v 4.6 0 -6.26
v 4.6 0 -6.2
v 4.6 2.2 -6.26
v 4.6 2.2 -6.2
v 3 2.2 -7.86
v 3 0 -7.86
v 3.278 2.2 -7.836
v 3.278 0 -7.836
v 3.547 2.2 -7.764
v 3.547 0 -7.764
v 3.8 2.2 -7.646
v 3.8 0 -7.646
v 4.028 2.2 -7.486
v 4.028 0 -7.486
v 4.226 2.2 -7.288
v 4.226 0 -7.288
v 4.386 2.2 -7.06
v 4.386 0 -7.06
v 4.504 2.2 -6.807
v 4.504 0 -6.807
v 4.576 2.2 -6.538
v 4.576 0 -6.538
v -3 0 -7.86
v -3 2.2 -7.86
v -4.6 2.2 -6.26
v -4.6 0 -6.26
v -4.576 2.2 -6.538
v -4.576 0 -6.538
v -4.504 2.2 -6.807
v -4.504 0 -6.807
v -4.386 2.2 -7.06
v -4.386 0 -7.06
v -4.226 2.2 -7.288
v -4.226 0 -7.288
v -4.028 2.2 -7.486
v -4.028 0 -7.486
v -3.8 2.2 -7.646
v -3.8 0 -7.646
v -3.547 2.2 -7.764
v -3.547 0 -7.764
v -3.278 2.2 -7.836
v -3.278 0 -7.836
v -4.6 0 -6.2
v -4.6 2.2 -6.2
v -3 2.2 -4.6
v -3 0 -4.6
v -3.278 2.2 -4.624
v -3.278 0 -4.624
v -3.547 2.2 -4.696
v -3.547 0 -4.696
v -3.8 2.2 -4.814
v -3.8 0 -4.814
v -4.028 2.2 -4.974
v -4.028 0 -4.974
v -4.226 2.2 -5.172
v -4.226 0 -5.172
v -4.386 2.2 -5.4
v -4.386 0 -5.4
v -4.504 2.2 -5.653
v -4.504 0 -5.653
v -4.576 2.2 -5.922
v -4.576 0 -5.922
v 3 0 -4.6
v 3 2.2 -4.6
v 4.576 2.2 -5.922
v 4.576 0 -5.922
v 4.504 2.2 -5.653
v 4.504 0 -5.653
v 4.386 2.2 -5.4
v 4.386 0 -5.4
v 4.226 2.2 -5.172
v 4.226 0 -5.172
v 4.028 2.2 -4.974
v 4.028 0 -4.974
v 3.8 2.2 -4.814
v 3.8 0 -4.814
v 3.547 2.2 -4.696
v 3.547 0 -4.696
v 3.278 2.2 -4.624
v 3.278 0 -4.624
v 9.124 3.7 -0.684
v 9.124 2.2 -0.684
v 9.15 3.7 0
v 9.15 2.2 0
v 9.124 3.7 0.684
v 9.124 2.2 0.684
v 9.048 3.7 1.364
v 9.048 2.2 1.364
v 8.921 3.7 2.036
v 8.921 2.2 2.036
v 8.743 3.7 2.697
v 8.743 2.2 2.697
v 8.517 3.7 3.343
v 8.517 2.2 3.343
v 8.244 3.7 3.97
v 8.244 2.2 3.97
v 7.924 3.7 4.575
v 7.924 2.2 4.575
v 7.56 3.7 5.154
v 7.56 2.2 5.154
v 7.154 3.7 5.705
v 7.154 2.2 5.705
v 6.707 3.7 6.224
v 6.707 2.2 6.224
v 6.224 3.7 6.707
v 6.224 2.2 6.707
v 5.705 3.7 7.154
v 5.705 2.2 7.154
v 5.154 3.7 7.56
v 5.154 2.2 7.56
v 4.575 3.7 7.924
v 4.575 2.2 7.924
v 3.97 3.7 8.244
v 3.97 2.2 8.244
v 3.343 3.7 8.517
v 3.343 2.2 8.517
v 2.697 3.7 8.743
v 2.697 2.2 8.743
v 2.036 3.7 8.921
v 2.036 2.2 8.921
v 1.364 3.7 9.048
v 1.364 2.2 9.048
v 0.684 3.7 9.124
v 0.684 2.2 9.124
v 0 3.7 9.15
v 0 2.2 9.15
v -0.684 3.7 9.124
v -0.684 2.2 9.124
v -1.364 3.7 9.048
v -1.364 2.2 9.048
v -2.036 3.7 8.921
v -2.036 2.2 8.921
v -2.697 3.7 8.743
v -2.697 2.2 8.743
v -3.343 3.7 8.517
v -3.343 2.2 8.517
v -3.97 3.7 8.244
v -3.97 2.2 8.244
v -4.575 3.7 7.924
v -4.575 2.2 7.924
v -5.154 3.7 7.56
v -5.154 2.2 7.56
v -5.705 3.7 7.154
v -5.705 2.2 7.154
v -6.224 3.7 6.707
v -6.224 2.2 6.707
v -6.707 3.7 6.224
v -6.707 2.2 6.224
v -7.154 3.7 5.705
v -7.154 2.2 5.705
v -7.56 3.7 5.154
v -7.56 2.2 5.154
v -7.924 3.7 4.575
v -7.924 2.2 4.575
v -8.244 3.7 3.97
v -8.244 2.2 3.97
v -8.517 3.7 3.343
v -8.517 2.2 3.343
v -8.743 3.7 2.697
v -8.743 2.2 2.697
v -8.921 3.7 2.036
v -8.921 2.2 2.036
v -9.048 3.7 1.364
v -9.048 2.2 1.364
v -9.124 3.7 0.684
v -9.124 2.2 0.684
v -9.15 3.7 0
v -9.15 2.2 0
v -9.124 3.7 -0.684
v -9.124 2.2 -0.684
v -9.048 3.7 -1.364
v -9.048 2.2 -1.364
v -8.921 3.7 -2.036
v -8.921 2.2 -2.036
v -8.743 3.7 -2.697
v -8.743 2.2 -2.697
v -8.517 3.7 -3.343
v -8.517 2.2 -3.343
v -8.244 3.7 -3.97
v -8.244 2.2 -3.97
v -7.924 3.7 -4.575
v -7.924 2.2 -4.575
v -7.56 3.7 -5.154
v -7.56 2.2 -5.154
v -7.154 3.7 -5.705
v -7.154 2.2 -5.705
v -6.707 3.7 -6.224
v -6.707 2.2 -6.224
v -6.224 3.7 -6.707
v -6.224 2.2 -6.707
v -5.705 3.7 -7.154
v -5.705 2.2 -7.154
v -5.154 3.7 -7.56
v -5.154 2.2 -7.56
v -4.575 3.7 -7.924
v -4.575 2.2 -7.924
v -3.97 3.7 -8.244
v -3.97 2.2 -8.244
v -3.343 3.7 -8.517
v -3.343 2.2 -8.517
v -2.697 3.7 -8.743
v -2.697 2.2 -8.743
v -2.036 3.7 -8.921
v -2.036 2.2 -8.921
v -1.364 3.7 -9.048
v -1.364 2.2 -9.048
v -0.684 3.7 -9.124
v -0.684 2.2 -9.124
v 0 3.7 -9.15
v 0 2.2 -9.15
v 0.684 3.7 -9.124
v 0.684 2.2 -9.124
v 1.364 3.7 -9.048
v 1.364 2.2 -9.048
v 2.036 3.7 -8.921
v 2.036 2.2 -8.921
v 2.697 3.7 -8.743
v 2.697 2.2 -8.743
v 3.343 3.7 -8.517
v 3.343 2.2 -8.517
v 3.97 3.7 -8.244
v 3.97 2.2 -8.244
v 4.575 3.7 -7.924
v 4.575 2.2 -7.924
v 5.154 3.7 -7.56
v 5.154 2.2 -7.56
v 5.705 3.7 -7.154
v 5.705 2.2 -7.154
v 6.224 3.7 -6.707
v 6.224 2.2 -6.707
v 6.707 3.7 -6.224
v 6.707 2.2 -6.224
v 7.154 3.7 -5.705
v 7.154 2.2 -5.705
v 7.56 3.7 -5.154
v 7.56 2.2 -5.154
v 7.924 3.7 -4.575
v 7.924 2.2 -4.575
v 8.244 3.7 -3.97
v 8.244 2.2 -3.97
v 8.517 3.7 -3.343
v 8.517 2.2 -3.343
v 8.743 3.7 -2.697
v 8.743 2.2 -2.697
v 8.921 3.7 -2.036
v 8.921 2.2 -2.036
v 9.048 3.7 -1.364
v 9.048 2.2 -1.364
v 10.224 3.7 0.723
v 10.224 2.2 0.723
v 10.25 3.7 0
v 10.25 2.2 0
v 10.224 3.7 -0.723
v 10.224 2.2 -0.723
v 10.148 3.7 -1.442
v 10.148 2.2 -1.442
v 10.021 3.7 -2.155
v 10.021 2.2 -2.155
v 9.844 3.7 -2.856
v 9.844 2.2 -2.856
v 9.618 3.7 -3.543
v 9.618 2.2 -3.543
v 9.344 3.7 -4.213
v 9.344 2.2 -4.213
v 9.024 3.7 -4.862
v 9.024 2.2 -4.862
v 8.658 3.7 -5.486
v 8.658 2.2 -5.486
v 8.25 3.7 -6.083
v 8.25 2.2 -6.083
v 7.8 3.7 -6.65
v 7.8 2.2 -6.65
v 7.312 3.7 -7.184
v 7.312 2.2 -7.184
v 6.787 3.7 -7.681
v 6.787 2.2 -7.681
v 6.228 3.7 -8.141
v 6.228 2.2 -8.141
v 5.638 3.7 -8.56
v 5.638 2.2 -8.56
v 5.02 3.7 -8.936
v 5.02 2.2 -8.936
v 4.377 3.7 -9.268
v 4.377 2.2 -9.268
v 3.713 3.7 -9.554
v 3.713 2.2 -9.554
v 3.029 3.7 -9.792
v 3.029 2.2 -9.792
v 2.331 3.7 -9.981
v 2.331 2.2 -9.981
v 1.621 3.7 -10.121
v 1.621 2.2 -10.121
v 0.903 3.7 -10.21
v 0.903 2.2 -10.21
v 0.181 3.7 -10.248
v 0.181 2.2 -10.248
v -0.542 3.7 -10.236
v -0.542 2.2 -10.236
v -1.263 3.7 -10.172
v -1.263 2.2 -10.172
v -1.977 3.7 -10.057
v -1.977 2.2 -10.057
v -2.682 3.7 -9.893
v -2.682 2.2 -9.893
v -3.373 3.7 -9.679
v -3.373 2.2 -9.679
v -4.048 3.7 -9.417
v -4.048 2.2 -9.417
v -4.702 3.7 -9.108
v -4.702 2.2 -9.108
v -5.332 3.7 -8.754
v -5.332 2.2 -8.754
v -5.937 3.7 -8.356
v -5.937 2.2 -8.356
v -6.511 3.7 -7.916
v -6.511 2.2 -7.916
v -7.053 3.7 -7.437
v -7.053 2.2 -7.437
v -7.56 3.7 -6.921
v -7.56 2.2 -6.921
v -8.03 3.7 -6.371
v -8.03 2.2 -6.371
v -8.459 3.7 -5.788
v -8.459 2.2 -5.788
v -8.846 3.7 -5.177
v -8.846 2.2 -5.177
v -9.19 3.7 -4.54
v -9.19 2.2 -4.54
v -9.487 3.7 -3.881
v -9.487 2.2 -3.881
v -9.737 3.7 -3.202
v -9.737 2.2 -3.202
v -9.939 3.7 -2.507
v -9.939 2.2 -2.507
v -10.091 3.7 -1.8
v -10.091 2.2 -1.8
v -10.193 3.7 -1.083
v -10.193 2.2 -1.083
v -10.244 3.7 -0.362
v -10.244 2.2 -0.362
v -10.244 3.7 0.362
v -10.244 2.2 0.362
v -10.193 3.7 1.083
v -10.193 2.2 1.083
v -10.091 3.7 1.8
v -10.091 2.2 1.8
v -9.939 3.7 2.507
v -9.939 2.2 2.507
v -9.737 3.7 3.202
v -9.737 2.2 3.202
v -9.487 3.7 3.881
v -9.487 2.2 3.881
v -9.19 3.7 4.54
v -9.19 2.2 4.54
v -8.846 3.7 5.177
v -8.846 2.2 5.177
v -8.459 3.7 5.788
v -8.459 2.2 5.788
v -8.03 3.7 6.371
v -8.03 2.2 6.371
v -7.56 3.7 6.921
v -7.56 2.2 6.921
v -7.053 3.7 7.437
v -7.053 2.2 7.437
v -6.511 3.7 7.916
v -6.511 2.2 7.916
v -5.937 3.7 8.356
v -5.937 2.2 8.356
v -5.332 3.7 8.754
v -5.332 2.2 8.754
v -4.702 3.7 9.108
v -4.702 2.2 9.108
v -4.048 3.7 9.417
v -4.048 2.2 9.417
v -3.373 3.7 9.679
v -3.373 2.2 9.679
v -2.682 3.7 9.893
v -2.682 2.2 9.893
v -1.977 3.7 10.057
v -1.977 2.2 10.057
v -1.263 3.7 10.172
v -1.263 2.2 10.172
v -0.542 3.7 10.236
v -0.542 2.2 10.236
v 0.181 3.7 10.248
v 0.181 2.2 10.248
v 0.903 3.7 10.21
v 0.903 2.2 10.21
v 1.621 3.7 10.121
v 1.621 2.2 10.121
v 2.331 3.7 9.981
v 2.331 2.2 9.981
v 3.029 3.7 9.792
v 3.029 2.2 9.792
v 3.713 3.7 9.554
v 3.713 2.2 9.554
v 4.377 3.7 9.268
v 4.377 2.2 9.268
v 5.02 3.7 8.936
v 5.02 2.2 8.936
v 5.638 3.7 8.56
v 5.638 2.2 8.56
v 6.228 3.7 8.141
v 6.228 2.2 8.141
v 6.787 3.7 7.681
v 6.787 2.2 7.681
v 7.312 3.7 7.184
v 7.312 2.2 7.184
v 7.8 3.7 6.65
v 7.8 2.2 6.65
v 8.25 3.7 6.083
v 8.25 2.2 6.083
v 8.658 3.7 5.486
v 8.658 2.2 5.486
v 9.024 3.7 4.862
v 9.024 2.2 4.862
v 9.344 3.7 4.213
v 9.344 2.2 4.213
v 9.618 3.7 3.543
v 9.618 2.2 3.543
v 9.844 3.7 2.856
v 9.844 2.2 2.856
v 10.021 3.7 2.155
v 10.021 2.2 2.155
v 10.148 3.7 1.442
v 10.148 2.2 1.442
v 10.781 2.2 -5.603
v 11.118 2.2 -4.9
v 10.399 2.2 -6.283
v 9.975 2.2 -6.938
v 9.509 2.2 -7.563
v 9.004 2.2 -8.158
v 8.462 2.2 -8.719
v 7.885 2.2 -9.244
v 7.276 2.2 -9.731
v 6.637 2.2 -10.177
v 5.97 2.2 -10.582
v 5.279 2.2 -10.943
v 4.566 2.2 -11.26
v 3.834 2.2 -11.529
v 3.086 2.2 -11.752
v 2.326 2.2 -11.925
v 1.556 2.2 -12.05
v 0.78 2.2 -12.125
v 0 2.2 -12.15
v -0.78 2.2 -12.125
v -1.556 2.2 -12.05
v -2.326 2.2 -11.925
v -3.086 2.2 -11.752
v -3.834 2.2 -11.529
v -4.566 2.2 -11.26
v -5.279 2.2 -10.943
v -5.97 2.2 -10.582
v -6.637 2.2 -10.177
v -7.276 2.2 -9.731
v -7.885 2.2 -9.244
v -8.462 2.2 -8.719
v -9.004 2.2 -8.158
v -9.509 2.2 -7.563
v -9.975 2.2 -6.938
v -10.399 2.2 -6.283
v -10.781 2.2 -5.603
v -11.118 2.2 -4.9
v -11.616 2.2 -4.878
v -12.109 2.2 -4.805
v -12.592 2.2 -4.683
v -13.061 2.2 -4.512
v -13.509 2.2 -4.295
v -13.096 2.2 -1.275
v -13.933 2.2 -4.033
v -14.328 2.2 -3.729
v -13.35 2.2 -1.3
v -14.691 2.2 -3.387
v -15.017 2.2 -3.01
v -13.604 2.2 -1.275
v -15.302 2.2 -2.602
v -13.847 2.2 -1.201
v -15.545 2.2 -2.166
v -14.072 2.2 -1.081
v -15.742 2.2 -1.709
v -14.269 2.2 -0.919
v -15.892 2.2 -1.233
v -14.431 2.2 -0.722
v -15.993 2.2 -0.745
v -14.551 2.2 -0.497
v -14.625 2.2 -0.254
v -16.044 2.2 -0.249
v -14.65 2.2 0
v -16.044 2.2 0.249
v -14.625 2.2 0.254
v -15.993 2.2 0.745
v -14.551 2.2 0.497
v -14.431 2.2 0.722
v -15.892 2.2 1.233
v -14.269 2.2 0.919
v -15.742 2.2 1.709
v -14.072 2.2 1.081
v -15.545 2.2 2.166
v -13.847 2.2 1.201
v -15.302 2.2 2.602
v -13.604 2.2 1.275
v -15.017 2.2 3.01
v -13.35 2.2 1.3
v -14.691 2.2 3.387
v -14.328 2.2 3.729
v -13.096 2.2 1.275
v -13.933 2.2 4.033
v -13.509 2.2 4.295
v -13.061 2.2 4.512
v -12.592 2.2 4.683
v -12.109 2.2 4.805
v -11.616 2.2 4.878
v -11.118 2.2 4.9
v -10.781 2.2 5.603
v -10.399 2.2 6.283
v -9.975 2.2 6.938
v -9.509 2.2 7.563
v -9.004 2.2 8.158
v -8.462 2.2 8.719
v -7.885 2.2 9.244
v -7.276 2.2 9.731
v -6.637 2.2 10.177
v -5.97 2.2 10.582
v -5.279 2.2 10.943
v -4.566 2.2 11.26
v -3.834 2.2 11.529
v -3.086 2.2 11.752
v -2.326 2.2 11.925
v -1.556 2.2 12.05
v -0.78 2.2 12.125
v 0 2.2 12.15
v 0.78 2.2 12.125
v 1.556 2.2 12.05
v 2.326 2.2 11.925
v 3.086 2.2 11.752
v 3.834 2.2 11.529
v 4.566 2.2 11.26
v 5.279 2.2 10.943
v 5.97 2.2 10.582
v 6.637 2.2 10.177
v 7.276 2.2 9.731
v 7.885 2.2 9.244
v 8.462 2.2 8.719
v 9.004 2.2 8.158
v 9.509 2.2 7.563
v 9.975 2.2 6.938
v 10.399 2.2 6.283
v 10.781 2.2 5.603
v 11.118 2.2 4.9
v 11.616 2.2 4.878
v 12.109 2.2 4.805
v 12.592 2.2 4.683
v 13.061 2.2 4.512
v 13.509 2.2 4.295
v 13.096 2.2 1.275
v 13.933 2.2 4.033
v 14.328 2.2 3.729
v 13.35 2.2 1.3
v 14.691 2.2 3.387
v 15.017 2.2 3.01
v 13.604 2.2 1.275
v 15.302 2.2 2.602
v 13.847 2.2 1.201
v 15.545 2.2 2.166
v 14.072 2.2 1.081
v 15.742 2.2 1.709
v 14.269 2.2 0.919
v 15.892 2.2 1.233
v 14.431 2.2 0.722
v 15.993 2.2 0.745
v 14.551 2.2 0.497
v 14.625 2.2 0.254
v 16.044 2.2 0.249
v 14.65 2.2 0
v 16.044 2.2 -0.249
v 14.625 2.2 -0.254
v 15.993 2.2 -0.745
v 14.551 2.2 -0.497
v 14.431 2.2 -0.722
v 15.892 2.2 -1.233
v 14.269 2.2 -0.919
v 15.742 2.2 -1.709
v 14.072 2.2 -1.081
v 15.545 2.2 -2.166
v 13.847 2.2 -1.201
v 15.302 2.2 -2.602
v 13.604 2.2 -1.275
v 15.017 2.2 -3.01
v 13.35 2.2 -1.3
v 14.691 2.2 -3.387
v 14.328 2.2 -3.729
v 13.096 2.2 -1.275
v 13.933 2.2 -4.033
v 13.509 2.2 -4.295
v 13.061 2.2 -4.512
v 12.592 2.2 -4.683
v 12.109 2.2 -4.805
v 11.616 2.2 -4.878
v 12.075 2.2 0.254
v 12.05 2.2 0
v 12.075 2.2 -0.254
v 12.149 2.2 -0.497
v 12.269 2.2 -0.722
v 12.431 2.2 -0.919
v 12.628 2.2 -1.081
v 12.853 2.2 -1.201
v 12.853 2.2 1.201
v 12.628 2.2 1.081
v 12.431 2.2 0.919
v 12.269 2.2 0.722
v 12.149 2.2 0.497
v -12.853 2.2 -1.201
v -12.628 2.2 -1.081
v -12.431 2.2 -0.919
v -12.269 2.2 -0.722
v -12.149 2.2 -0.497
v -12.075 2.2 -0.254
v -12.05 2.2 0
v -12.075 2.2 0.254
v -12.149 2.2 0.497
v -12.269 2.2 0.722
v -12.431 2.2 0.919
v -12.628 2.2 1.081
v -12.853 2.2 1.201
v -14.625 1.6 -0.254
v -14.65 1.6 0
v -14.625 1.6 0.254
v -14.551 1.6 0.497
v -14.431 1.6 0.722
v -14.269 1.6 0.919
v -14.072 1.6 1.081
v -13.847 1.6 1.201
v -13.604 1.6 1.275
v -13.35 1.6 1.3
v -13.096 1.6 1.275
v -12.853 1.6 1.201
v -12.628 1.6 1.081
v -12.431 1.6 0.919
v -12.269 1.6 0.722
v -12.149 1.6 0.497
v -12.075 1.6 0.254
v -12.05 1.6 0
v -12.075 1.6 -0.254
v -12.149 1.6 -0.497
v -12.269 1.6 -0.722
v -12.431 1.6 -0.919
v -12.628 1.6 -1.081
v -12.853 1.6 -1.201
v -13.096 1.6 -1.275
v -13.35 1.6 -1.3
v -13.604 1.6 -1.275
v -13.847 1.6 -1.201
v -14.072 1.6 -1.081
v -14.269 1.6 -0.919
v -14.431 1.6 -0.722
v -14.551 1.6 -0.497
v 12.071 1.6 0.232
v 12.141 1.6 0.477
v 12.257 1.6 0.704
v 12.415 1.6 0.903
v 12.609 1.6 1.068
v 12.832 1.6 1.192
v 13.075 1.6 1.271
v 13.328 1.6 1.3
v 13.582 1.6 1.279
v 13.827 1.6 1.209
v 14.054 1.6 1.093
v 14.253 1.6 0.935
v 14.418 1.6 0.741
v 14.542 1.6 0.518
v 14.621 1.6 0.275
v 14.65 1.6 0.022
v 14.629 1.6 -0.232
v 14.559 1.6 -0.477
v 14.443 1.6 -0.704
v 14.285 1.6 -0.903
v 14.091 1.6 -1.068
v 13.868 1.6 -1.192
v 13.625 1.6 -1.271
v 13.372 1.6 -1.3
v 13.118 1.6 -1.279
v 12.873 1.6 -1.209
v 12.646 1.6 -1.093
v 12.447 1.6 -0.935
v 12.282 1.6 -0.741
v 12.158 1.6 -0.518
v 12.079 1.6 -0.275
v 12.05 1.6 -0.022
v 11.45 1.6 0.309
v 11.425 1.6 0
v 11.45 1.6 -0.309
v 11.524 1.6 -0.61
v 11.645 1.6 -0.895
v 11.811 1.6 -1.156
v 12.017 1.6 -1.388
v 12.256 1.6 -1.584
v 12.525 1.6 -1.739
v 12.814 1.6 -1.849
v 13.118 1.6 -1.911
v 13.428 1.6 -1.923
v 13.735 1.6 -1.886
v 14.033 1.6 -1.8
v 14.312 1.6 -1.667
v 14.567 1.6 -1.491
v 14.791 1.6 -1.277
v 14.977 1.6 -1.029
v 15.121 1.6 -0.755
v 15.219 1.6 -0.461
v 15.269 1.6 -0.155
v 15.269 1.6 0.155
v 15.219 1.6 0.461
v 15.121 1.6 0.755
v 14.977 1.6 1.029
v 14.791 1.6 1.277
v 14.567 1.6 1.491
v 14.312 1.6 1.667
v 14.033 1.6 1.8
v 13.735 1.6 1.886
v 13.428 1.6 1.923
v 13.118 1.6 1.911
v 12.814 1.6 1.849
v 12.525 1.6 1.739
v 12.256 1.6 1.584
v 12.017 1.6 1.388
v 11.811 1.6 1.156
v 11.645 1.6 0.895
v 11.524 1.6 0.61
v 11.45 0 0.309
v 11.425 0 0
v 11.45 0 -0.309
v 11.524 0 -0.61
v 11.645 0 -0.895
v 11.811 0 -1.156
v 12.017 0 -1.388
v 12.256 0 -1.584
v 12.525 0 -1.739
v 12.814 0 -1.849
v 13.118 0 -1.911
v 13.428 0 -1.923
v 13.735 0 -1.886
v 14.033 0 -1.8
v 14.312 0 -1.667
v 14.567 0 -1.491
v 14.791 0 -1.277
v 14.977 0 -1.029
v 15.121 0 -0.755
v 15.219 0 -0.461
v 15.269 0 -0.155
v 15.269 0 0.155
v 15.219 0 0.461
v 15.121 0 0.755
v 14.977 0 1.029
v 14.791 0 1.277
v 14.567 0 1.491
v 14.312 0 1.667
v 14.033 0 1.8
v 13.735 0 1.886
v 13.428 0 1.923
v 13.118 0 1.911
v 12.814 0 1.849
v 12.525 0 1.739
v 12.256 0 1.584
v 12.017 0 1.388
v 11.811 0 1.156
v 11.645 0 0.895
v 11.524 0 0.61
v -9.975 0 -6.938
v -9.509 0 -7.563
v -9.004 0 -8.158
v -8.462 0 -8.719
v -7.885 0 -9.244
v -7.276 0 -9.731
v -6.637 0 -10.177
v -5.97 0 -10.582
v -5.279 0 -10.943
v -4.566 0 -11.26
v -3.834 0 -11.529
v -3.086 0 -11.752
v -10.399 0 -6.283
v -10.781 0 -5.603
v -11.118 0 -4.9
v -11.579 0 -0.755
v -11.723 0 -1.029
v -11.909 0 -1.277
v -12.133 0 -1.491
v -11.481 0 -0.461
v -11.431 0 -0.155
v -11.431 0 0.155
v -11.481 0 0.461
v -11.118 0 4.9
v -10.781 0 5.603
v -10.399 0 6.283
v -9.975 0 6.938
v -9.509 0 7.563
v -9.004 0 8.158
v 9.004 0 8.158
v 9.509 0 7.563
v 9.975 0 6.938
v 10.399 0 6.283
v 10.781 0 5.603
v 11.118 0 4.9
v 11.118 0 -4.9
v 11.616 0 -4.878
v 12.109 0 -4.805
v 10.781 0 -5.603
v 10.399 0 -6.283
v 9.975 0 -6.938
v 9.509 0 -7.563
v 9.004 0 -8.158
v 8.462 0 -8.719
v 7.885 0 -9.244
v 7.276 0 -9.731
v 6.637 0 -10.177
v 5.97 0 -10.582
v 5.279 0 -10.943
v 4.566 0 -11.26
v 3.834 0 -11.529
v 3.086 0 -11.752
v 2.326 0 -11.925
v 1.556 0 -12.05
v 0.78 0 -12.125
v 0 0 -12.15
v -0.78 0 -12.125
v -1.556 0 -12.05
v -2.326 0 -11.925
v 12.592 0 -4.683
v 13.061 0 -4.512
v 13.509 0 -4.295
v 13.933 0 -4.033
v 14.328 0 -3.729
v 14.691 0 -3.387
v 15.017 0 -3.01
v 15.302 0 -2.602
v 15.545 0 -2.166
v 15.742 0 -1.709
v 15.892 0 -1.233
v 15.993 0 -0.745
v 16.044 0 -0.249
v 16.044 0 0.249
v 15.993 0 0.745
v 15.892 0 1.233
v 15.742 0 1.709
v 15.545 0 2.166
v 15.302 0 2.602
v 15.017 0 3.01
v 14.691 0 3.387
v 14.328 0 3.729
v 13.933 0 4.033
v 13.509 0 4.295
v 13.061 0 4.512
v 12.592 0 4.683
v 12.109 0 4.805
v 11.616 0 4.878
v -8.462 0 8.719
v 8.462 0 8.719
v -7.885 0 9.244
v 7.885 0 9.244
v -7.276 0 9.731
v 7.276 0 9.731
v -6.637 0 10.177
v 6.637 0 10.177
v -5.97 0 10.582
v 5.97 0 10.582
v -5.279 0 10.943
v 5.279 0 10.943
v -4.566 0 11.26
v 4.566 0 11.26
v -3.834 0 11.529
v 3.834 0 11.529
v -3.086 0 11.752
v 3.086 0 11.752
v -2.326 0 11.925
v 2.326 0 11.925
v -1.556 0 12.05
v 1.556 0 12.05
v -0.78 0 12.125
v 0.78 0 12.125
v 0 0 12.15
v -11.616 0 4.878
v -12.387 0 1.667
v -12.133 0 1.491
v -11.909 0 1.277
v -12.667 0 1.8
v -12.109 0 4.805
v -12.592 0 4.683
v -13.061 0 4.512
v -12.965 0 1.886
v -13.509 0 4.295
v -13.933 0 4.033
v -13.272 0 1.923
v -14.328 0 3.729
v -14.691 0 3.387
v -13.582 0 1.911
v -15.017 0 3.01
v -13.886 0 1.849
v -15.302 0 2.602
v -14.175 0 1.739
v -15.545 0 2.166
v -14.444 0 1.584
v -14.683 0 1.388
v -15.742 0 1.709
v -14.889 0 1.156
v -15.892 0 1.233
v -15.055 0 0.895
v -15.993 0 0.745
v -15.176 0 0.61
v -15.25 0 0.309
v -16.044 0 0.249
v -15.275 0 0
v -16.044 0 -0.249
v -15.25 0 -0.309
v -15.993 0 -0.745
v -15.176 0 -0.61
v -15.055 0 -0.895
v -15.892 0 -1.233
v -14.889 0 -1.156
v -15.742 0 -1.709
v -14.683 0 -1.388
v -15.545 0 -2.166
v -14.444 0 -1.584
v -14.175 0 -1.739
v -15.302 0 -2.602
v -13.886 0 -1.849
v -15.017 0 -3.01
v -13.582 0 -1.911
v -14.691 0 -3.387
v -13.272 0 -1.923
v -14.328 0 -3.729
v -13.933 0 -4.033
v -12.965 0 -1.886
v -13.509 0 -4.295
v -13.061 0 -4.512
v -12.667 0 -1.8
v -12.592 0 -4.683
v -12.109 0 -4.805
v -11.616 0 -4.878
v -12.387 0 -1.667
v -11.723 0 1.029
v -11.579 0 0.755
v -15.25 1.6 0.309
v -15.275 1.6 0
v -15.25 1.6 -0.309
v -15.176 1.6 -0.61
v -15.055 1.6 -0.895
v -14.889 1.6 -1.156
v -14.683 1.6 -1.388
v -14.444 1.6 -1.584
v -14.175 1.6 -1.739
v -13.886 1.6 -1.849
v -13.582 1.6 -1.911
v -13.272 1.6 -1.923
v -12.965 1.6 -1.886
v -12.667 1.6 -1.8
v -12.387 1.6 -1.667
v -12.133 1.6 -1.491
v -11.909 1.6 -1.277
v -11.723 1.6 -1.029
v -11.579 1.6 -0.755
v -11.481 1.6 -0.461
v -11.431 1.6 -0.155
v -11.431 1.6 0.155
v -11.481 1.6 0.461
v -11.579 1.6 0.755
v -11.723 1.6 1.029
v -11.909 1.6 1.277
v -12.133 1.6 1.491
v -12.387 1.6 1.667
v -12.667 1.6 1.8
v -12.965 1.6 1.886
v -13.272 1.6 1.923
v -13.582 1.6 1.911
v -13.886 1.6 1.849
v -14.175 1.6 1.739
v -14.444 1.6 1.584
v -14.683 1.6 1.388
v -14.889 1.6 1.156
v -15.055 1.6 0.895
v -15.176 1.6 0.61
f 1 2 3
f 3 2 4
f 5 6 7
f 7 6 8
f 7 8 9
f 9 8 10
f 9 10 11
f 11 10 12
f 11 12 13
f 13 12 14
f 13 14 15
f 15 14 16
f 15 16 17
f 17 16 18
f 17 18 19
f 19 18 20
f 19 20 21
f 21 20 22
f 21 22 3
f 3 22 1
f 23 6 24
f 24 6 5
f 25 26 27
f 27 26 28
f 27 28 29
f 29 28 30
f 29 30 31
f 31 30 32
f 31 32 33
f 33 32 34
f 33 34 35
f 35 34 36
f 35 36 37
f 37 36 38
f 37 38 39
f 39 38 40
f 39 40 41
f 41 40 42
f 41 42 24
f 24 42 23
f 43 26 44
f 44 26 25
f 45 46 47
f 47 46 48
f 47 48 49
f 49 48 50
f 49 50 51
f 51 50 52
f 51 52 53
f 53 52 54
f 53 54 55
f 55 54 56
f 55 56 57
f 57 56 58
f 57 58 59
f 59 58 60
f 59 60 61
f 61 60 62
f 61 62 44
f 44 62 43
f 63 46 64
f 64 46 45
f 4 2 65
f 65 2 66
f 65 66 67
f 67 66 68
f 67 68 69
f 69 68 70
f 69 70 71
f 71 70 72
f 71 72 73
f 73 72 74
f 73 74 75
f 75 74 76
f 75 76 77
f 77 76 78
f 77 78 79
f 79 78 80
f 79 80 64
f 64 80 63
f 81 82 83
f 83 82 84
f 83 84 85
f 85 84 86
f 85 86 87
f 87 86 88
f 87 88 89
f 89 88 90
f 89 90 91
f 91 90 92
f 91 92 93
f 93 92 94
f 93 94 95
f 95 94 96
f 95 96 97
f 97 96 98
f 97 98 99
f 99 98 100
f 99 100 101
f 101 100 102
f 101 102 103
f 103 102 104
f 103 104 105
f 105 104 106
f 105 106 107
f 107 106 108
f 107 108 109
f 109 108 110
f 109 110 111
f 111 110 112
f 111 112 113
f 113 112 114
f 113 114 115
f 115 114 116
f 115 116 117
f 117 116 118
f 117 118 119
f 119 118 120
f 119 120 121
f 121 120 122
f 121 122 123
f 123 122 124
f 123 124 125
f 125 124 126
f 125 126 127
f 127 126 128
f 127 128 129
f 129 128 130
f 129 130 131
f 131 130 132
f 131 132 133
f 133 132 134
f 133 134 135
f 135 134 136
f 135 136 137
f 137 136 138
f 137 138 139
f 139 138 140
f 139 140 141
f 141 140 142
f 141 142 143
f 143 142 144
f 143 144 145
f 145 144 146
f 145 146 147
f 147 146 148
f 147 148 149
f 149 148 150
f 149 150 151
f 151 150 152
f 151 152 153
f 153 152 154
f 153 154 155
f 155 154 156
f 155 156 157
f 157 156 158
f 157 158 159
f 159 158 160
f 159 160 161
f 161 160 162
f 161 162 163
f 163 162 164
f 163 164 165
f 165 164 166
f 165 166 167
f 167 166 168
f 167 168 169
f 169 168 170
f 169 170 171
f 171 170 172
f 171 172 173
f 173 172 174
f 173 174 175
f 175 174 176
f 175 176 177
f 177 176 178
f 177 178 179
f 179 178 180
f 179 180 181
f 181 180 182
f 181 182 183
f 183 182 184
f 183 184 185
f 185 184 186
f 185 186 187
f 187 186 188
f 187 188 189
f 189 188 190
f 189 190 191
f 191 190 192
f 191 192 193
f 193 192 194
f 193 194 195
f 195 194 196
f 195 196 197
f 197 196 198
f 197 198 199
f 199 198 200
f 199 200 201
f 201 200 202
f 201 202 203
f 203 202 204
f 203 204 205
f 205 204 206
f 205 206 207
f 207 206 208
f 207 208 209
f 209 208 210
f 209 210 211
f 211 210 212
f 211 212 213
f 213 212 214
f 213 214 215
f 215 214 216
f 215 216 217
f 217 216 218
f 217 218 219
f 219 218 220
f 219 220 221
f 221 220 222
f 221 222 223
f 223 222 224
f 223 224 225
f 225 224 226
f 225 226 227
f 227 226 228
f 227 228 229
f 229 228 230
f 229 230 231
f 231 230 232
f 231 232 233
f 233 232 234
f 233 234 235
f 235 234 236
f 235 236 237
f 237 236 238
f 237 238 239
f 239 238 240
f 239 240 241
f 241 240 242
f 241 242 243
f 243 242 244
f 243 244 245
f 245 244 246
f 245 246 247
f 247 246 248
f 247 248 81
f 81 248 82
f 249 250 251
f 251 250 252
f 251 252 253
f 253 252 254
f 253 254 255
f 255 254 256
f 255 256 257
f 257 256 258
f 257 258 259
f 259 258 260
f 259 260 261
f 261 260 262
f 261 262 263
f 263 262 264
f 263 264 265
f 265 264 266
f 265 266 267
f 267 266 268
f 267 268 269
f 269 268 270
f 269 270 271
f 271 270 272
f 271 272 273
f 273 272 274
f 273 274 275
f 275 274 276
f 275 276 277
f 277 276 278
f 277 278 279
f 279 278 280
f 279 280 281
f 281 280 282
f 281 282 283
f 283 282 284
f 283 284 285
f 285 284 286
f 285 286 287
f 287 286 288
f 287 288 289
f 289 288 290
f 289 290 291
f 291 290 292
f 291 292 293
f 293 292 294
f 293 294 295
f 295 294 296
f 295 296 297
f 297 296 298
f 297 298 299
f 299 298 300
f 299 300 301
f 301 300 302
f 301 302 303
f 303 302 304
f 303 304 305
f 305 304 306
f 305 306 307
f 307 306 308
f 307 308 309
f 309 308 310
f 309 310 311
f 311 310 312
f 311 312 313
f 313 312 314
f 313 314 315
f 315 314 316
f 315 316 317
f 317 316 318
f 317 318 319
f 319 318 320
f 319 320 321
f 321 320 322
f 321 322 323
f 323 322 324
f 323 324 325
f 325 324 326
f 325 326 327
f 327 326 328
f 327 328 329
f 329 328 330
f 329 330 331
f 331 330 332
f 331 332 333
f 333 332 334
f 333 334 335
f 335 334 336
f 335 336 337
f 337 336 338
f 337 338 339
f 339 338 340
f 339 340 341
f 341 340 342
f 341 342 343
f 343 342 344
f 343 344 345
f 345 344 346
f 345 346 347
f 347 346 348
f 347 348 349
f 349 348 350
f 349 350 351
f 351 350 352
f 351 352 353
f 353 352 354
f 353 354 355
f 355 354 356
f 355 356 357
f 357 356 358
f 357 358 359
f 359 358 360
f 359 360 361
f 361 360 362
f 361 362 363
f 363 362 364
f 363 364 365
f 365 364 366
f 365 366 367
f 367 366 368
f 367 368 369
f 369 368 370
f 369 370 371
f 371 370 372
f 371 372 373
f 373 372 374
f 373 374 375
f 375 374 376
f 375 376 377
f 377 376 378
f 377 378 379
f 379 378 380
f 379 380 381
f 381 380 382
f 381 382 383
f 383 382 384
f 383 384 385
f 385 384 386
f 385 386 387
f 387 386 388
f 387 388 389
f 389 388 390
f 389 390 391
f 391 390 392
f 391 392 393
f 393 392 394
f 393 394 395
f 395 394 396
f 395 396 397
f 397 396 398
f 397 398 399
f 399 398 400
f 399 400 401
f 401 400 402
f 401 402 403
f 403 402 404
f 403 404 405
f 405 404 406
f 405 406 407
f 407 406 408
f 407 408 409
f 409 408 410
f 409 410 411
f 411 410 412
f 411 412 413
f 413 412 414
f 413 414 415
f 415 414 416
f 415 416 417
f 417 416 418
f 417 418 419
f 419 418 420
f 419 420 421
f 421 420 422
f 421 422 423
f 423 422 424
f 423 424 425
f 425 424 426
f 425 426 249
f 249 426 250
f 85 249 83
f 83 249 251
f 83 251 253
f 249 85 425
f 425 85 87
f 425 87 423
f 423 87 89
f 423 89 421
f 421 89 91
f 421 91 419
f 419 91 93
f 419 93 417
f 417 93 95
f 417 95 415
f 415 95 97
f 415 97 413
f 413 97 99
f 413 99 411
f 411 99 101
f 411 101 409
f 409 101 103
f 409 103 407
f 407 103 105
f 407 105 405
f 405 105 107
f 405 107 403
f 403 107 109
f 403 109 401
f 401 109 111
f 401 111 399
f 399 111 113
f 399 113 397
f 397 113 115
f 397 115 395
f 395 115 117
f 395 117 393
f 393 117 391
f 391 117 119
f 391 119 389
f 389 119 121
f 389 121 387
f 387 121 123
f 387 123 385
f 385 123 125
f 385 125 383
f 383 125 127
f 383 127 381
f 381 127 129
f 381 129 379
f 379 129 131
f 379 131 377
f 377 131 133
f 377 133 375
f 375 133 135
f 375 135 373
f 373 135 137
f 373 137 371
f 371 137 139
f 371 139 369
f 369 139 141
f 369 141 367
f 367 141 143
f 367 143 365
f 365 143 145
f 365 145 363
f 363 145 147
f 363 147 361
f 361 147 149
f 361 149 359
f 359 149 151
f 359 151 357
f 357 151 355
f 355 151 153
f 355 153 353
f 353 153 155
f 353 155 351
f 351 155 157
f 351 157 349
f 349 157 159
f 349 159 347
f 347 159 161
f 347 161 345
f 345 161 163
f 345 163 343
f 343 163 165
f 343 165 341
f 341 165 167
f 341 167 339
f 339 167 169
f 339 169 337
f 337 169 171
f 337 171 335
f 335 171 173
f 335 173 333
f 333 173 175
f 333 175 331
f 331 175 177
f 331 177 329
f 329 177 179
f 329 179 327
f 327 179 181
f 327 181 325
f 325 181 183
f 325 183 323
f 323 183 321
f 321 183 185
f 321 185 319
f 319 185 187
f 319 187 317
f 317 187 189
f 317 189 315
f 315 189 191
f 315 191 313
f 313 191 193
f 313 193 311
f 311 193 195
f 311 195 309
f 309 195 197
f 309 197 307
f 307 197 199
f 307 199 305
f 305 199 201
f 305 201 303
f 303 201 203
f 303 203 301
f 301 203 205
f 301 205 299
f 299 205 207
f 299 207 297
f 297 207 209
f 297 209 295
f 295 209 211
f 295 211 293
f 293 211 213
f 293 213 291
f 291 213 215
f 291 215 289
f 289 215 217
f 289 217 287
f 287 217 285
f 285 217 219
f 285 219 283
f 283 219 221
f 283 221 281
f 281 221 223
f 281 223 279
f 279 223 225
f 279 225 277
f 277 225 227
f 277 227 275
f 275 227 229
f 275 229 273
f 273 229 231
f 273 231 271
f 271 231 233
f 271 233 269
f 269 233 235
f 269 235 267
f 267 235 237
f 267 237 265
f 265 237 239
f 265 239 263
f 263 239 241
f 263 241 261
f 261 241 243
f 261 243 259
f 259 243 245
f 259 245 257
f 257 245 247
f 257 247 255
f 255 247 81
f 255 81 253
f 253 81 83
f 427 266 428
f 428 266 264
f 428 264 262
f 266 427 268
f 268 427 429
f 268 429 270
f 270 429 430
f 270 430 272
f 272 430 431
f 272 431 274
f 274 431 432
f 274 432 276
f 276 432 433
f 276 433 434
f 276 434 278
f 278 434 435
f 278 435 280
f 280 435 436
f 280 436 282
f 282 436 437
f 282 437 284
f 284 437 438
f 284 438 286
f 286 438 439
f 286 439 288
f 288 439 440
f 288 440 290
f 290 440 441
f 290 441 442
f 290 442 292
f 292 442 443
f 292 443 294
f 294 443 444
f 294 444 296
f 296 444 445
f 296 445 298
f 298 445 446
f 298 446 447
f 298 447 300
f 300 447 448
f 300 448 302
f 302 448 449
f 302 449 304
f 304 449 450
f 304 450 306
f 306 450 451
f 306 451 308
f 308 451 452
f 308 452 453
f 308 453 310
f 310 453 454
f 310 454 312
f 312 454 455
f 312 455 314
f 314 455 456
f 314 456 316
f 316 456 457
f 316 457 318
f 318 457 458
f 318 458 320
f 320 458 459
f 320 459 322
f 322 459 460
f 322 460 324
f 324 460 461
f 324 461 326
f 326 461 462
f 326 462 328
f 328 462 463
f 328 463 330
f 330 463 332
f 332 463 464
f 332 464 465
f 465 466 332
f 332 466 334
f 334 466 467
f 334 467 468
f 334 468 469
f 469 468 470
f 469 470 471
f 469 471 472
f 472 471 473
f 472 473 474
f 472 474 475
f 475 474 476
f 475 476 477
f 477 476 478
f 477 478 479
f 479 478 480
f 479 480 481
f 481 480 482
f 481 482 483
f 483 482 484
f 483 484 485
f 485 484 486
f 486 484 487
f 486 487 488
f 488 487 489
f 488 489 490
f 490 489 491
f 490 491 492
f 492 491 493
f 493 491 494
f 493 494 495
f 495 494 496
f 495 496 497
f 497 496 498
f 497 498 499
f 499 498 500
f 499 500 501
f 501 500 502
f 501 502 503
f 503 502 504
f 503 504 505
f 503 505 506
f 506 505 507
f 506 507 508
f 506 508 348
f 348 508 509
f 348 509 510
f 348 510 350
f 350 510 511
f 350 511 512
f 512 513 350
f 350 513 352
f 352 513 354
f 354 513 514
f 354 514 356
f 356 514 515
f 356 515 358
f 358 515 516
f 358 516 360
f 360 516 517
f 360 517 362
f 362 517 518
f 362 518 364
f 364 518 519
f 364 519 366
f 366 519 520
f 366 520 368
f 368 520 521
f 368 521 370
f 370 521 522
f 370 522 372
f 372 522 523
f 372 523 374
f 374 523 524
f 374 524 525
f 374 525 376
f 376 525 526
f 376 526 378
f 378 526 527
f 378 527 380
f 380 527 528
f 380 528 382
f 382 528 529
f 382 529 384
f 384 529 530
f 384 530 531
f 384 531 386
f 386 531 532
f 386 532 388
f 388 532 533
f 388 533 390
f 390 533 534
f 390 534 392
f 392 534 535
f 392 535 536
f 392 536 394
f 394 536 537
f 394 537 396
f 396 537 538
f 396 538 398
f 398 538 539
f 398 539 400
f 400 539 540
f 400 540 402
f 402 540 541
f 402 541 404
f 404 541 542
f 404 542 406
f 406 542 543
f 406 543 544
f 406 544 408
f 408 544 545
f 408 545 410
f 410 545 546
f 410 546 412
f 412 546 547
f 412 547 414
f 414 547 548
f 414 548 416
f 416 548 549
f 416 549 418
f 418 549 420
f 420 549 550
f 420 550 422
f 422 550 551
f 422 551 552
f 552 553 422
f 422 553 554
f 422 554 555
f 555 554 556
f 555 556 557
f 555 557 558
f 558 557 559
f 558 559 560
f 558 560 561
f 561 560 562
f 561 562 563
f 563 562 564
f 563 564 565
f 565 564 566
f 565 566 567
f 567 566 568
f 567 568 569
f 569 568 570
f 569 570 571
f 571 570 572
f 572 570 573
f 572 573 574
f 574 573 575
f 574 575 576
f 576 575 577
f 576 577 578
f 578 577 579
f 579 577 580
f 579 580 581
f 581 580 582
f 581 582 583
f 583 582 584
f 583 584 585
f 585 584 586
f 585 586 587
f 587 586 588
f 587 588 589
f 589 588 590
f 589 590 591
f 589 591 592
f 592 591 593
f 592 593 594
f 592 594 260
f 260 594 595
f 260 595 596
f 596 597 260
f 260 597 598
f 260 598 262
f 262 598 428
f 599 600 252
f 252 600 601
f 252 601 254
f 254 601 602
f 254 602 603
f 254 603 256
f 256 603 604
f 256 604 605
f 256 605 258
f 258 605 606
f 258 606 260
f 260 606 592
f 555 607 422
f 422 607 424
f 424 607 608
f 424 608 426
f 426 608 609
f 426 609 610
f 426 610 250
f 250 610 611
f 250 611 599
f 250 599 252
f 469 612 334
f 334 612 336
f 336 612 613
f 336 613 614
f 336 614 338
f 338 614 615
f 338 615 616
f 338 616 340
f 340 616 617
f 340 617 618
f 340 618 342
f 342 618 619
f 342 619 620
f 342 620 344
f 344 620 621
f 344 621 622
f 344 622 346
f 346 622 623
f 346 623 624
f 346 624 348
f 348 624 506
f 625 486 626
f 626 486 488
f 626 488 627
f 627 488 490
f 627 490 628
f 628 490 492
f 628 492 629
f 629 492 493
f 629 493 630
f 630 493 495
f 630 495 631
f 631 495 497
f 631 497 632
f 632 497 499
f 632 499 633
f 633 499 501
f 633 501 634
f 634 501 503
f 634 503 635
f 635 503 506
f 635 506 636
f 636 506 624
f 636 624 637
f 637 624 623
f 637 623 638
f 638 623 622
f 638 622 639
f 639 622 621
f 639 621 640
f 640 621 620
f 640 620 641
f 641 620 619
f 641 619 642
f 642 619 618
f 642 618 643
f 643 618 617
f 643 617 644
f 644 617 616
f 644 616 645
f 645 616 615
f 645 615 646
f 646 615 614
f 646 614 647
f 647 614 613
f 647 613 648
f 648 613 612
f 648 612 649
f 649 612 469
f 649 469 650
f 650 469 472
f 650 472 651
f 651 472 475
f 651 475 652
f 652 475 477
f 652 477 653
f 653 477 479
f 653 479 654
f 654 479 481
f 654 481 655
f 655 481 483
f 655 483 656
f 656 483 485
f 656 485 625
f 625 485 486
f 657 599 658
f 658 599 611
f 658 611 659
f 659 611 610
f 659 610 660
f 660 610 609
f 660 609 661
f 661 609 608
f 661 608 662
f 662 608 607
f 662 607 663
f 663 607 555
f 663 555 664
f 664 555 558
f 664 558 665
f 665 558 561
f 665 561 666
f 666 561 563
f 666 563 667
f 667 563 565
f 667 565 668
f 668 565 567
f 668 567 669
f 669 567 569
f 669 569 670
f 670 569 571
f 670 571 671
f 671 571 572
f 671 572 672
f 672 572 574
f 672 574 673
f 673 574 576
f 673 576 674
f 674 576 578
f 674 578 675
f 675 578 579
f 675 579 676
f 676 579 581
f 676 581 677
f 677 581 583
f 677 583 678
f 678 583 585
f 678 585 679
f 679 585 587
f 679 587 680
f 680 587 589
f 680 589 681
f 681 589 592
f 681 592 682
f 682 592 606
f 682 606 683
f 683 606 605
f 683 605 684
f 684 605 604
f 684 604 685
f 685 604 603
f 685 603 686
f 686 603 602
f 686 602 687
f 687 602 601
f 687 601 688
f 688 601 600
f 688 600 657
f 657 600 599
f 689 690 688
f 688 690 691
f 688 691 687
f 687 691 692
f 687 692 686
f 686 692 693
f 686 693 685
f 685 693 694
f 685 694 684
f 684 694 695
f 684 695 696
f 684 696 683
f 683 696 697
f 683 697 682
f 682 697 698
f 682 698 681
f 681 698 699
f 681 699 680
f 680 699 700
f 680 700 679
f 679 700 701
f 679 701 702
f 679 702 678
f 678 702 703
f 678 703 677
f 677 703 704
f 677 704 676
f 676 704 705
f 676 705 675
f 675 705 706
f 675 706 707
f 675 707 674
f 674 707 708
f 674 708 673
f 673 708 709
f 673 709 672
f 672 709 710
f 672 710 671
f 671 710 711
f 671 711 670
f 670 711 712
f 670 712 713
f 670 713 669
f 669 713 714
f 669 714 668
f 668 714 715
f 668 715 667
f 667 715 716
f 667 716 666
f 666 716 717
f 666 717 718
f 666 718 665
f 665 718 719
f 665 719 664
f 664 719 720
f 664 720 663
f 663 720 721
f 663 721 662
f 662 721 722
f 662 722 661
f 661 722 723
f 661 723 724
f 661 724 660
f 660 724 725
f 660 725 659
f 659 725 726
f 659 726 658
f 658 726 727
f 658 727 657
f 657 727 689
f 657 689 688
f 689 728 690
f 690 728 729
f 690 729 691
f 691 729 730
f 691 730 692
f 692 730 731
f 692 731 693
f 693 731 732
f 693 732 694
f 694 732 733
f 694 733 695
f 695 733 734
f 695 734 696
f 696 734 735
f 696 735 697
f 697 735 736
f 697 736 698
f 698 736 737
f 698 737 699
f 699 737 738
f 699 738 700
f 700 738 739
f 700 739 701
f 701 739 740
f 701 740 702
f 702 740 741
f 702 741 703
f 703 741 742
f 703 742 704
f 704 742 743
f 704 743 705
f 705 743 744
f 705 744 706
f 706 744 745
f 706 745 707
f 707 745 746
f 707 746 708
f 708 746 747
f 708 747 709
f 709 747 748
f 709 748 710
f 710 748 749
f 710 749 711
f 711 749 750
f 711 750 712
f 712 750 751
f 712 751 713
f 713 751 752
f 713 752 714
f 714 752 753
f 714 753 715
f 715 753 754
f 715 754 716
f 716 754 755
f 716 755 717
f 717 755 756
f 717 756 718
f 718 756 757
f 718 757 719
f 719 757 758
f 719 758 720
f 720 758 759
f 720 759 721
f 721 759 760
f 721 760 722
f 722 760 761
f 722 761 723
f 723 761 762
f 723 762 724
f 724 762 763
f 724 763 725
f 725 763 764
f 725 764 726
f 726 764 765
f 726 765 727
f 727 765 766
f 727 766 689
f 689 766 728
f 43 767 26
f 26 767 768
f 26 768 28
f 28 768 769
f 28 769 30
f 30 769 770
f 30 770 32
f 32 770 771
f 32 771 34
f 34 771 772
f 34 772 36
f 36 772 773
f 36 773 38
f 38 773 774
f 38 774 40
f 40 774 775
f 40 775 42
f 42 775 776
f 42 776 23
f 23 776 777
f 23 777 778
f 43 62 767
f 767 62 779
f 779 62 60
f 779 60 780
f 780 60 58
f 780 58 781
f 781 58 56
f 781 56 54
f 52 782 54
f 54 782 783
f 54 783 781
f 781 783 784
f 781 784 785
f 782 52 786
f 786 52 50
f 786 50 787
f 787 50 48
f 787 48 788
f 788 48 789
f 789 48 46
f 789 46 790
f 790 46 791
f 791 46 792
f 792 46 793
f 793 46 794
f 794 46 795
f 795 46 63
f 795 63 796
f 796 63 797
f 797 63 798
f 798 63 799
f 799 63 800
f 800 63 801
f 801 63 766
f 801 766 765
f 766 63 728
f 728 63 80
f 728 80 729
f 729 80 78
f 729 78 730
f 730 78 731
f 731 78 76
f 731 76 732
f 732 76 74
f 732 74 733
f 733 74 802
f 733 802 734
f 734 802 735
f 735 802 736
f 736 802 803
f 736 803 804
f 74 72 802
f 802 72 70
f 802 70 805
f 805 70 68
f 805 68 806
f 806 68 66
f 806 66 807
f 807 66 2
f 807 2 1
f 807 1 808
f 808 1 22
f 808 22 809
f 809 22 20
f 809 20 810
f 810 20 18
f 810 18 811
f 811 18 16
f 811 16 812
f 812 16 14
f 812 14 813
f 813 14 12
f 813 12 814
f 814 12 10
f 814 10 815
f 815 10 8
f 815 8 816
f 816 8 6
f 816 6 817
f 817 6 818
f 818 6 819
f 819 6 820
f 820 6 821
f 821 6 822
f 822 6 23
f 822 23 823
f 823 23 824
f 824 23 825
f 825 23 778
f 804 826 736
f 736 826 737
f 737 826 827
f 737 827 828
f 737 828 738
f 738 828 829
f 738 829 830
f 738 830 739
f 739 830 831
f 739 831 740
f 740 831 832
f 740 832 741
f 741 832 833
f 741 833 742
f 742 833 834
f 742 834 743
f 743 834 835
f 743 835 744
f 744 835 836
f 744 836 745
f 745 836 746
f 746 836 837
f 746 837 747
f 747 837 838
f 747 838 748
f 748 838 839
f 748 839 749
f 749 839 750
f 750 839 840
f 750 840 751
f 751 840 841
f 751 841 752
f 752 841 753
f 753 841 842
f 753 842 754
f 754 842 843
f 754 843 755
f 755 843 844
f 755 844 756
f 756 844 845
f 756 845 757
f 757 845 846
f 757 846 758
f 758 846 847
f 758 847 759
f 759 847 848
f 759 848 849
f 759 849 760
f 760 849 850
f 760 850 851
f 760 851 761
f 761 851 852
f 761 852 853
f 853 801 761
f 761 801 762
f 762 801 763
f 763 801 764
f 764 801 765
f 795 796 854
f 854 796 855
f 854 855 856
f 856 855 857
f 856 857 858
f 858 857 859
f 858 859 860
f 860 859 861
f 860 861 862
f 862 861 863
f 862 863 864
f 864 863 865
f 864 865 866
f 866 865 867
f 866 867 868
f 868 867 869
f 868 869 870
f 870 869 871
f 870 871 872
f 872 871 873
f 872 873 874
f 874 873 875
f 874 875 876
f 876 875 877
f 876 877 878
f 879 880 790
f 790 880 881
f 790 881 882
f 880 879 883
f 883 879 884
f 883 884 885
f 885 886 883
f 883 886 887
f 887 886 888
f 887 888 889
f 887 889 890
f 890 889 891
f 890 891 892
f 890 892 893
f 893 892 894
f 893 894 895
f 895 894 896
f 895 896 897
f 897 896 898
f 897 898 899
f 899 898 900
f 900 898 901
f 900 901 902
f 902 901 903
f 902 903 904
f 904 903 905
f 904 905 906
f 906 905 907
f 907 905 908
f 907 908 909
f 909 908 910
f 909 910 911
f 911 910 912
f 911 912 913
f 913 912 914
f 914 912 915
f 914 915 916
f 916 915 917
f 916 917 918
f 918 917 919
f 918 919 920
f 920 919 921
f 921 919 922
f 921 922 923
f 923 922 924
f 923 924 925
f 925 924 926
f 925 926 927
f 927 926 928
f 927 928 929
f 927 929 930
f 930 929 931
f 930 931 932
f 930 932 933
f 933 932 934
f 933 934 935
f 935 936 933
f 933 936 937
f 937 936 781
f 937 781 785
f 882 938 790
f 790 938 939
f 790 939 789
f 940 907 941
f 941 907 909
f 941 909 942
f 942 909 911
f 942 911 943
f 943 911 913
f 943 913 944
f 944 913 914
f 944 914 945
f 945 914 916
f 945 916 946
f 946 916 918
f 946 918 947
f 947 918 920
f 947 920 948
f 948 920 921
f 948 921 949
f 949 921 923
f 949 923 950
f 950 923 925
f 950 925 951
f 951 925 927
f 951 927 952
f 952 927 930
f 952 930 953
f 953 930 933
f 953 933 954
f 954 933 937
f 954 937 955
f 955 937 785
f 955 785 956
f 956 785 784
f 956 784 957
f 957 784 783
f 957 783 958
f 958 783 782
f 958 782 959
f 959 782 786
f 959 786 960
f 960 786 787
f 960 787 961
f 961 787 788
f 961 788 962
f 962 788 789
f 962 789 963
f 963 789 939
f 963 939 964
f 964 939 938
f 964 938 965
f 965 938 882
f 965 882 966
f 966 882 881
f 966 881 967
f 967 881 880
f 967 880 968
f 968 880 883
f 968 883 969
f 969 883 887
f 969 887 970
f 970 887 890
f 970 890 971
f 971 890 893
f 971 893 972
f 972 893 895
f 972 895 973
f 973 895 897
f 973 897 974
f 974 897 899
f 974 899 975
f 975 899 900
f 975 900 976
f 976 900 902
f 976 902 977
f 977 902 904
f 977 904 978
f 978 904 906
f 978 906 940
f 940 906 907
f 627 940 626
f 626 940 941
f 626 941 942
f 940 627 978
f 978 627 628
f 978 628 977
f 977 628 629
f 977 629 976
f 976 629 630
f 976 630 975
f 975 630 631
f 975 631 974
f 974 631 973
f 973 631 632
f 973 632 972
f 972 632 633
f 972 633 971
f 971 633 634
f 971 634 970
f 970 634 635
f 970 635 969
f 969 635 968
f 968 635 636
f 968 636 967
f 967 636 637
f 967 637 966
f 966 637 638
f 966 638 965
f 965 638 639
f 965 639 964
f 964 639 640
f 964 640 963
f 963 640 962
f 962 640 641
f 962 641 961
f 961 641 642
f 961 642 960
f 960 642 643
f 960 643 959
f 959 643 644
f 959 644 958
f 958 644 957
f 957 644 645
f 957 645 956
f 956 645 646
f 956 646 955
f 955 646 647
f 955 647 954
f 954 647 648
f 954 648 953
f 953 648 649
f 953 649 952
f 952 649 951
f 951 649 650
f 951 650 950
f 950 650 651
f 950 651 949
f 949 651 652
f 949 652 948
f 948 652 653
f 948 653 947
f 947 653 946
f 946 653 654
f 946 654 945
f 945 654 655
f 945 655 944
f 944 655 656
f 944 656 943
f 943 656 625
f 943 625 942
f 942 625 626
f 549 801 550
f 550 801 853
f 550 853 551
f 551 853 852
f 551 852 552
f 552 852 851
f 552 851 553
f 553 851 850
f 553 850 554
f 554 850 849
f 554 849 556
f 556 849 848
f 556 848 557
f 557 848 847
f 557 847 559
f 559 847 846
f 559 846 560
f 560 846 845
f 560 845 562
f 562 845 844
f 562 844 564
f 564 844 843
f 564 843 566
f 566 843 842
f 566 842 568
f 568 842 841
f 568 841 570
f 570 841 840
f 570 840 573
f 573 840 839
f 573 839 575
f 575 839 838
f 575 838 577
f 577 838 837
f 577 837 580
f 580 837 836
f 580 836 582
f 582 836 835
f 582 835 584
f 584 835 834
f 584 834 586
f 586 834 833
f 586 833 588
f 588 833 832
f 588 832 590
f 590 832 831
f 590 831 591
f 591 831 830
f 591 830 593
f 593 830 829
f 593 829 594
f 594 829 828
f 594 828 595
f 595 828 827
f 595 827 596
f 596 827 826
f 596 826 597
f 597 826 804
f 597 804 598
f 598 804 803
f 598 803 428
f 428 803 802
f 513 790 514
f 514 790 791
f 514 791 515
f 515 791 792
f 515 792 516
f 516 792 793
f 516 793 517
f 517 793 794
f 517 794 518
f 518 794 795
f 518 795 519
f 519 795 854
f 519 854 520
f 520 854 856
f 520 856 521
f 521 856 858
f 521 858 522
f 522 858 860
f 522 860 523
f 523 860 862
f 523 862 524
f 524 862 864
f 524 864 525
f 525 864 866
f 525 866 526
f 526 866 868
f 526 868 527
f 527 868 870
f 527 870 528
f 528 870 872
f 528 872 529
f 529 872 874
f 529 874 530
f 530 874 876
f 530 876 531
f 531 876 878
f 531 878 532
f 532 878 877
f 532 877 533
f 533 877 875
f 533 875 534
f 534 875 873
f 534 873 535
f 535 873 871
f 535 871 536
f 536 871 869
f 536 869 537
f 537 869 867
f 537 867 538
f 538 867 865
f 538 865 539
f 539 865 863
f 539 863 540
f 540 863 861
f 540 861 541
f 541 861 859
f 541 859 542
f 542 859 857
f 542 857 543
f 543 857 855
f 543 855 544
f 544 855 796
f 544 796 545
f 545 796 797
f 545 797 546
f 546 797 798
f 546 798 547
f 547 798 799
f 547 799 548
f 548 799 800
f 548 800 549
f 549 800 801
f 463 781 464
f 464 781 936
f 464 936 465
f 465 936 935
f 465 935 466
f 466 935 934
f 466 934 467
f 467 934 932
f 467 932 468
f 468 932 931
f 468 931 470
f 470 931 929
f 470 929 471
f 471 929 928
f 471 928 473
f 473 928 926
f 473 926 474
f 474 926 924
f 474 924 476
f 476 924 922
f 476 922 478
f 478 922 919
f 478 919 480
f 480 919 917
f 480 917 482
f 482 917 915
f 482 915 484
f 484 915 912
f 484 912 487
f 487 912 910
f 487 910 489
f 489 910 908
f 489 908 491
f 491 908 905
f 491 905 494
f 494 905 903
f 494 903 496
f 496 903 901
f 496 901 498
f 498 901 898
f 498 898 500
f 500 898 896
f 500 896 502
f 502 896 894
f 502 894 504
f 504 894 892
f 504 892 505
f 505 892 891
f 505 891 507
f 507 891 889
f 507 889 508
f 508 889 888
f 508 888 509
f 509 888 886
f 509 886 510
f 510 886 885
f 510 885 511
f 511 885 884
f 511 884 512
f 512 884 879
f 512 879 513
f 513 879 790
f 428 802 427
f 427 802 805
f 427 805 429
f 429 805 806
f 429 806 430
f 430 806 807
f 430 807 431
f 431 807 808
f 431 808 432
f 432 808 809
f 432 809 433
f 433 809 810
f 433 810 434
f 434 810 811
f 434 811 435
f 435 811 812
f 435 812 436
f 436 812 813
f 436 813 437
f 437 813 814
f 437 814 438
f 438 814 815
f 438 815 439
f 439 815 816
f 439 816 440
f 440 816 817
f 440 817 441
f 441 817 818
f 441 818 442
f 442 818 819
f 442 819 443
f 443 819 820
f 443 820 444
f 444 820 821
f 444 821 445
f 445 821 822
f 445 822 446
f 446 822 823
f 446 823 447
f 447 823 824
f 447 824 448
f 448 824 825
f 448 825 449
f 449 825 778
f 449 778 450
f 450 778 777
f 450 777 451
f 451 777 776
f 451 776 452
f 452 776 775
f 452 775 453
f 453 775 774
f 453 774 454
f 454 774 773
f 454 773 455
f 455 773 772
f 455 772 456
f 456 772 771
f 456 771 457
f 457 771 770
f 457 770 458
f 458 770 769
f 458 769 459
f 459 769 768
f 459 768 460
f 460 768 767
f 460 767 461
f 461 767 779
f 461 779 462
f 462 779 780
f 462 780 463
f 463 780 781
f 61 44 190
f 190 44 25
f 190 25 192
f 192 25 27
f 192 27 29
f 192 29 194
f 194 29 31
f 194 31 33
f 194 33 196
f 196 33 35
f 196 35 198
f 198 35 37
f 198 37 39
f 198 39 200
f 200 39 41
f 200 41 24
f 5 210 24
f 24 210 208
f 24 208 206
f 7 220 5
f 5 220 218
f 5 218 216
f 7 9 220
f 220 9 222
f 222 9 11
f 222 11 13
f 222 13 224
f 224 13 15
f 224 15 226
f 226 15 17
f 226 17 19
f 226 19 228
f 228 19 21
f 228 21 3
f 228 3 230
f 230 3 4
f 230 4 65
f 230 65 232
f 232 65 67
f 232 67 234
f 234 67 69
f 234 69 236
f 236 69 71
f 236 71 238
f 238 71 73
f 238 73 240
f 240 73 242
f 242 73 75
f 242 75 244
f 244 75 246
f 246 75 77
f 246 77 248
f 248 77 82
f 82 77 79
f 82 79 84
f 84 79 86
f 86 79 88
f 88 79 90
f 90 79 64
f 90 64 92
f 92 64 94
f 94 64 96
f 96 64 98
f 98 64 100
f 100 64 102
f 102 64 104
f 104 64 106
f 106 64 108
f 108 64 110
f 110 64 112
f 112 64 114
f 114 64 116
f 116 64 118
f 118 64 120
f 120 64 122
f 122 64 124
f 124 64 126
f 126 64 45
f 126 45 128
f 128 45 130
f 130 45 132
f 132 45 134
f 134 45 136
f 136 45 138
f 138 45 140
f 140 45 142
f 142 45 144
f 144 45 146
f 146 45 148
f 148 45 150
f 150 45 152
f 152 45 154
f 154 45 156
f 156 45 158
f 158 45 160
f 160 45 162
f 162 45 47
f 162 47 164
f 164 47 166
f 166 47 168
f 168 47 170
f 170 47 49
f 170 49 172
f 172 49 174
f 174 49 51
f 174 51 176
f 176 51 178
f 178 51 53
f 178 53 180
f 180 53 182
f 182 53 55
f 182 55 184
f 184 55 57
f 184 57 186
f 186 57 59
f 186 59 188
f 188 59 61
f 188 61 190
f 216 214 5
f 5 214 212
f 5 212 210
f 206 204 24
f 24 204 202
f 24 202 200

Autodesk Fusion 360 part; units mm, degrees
sketch "스케치1" plane through (0, 0, 0) normal (0, 1, 0) x (1, 0, 0)
  circle A0 centre (0, 0) radius 12.15
  circle A1 centre (11.15, 0) radius 4.9
  circle A2 centre (-11.15, 0) radius 4.9
  circle A3 centre (13.35, 0) radius 1.3
  circle A4 centre (-13.35, 0) radius 1.3
  circle A5 centre (13.35, 0) radius 1.925
  circle A6 centre (-13.35, 0) radius 1.925
  dimension "d1" = 24.3
  dimension "d2" = 9.8
  dimension "d3" = 9.8
  dimension "d4" = 2.6
  dimension "d5" = 2.2
  dimension "d6" = 2.6
  dimension "d7" = 2.2
  dimension "d8" = 11.15
  dimension "d9" = 11.15
  dimension "d10" = 3.85
  dimension "d11" = 3.85
extrude "돌출1" add sketch "스케치1" along normal blind 2.2
extrude "돌출2" cut sketch "스케치1" along normal blind 1.6 contours A0 A4 A6 | A0 A4 A6 | A0 A4 | A0 A4
extrude "돌출3" cut sketch "스케치1" along normal blind 1.6 contours A0 A3 | A0 A3 A5 | A0 A3 A5 picked at (12.0867, 0.0541)
extrude "돌출4" cut sketch "스케치1" along normal blind 2.2 contours A0 A3 | A0 A3
extrude "돌출5" cut sketch "스케치1" along normal blind 2.2 contours A0 A4 | A0 A4
sketch "스케치2" plane through (0, 2.2, 0) normal (0, 1, 0) x (-1, 0, 0)
  circle A0 centre (13.35, 0) radius 1.3
  circle A1 centre (-13.35, 0) radius 1.3
  arc A2 (-11.1182, -4.8999) -> (11.1182, -4.8999) centre (0, 0) ccw
  arc A3 (11.1182, -4.8999) -> (11.1182, 4.8999) centre (11.15, 0) ccw
  arc A4 (11.1182, 4.8999) -> (-11.1182, 4.8999) centre (0, 0) ccw
  arc A5 (-11.1182, 4.8999) -> (-11.1182, -4.8999) centre (-11.15, 0) ccw
  circle A6 centre (0, 0) radius 10.25
  circle A7 centre (0, 0) radius 9.15
  dimension "d22" = 20.5
  dimension "d23" = 18.3
extrude "돌출6" add sketch "스케치2" along normal blind 1.5 contours A6
sketch "스케치3" plane through (0, 2.2, 0) normal (0, 1, 0) x (-1, 0, 0)
  circle A0 centre (0, 0) radius 9.15
  line L0 (3, -7.86) -> (-3, -7.86)
  line L1 (-4.6, -6.26) -> (-4.6, -6.2)
  line L2 (-3, -4.6) -> (3, -4.6)
  line L3 (4.6, -6.2) -> (4.6, -6.26)
  arc A1 (-4.6, -6.26) -> (-3, -7.86) centre (-3, -6.26) ccw
  arc A2 (-3, -4.6) -> (-4.6, -6.2) centre (-3, -6.2) ccw
  arc A3 (3, -7.86) -> (4.6, -6.26) centre (3, -6.26) ccw
  arc A4 (4.6, -6.2) -> (3, -4.6) centre (3, -6.2) ccw
  point P0 (4.6, -7.86)
  point P1 (-4.6, -7.86)
  point P2 (4.6, -4.6)
  point P3 (0, -4.6)
  dimension "d26" = 9.2
  dimension "d27" = 3.26
  dimension "d28" = 1.6
  dimension "d29" = 1.6
  dimension "d30" = 1.6
  dimension "d31" = 1.6
  dimension "d32" = 4.6
extrude "돌출7" cut sketch "스케치3" against normal blind 10 contours L0 L1 L2 L3 A1 A2 A3 A4
